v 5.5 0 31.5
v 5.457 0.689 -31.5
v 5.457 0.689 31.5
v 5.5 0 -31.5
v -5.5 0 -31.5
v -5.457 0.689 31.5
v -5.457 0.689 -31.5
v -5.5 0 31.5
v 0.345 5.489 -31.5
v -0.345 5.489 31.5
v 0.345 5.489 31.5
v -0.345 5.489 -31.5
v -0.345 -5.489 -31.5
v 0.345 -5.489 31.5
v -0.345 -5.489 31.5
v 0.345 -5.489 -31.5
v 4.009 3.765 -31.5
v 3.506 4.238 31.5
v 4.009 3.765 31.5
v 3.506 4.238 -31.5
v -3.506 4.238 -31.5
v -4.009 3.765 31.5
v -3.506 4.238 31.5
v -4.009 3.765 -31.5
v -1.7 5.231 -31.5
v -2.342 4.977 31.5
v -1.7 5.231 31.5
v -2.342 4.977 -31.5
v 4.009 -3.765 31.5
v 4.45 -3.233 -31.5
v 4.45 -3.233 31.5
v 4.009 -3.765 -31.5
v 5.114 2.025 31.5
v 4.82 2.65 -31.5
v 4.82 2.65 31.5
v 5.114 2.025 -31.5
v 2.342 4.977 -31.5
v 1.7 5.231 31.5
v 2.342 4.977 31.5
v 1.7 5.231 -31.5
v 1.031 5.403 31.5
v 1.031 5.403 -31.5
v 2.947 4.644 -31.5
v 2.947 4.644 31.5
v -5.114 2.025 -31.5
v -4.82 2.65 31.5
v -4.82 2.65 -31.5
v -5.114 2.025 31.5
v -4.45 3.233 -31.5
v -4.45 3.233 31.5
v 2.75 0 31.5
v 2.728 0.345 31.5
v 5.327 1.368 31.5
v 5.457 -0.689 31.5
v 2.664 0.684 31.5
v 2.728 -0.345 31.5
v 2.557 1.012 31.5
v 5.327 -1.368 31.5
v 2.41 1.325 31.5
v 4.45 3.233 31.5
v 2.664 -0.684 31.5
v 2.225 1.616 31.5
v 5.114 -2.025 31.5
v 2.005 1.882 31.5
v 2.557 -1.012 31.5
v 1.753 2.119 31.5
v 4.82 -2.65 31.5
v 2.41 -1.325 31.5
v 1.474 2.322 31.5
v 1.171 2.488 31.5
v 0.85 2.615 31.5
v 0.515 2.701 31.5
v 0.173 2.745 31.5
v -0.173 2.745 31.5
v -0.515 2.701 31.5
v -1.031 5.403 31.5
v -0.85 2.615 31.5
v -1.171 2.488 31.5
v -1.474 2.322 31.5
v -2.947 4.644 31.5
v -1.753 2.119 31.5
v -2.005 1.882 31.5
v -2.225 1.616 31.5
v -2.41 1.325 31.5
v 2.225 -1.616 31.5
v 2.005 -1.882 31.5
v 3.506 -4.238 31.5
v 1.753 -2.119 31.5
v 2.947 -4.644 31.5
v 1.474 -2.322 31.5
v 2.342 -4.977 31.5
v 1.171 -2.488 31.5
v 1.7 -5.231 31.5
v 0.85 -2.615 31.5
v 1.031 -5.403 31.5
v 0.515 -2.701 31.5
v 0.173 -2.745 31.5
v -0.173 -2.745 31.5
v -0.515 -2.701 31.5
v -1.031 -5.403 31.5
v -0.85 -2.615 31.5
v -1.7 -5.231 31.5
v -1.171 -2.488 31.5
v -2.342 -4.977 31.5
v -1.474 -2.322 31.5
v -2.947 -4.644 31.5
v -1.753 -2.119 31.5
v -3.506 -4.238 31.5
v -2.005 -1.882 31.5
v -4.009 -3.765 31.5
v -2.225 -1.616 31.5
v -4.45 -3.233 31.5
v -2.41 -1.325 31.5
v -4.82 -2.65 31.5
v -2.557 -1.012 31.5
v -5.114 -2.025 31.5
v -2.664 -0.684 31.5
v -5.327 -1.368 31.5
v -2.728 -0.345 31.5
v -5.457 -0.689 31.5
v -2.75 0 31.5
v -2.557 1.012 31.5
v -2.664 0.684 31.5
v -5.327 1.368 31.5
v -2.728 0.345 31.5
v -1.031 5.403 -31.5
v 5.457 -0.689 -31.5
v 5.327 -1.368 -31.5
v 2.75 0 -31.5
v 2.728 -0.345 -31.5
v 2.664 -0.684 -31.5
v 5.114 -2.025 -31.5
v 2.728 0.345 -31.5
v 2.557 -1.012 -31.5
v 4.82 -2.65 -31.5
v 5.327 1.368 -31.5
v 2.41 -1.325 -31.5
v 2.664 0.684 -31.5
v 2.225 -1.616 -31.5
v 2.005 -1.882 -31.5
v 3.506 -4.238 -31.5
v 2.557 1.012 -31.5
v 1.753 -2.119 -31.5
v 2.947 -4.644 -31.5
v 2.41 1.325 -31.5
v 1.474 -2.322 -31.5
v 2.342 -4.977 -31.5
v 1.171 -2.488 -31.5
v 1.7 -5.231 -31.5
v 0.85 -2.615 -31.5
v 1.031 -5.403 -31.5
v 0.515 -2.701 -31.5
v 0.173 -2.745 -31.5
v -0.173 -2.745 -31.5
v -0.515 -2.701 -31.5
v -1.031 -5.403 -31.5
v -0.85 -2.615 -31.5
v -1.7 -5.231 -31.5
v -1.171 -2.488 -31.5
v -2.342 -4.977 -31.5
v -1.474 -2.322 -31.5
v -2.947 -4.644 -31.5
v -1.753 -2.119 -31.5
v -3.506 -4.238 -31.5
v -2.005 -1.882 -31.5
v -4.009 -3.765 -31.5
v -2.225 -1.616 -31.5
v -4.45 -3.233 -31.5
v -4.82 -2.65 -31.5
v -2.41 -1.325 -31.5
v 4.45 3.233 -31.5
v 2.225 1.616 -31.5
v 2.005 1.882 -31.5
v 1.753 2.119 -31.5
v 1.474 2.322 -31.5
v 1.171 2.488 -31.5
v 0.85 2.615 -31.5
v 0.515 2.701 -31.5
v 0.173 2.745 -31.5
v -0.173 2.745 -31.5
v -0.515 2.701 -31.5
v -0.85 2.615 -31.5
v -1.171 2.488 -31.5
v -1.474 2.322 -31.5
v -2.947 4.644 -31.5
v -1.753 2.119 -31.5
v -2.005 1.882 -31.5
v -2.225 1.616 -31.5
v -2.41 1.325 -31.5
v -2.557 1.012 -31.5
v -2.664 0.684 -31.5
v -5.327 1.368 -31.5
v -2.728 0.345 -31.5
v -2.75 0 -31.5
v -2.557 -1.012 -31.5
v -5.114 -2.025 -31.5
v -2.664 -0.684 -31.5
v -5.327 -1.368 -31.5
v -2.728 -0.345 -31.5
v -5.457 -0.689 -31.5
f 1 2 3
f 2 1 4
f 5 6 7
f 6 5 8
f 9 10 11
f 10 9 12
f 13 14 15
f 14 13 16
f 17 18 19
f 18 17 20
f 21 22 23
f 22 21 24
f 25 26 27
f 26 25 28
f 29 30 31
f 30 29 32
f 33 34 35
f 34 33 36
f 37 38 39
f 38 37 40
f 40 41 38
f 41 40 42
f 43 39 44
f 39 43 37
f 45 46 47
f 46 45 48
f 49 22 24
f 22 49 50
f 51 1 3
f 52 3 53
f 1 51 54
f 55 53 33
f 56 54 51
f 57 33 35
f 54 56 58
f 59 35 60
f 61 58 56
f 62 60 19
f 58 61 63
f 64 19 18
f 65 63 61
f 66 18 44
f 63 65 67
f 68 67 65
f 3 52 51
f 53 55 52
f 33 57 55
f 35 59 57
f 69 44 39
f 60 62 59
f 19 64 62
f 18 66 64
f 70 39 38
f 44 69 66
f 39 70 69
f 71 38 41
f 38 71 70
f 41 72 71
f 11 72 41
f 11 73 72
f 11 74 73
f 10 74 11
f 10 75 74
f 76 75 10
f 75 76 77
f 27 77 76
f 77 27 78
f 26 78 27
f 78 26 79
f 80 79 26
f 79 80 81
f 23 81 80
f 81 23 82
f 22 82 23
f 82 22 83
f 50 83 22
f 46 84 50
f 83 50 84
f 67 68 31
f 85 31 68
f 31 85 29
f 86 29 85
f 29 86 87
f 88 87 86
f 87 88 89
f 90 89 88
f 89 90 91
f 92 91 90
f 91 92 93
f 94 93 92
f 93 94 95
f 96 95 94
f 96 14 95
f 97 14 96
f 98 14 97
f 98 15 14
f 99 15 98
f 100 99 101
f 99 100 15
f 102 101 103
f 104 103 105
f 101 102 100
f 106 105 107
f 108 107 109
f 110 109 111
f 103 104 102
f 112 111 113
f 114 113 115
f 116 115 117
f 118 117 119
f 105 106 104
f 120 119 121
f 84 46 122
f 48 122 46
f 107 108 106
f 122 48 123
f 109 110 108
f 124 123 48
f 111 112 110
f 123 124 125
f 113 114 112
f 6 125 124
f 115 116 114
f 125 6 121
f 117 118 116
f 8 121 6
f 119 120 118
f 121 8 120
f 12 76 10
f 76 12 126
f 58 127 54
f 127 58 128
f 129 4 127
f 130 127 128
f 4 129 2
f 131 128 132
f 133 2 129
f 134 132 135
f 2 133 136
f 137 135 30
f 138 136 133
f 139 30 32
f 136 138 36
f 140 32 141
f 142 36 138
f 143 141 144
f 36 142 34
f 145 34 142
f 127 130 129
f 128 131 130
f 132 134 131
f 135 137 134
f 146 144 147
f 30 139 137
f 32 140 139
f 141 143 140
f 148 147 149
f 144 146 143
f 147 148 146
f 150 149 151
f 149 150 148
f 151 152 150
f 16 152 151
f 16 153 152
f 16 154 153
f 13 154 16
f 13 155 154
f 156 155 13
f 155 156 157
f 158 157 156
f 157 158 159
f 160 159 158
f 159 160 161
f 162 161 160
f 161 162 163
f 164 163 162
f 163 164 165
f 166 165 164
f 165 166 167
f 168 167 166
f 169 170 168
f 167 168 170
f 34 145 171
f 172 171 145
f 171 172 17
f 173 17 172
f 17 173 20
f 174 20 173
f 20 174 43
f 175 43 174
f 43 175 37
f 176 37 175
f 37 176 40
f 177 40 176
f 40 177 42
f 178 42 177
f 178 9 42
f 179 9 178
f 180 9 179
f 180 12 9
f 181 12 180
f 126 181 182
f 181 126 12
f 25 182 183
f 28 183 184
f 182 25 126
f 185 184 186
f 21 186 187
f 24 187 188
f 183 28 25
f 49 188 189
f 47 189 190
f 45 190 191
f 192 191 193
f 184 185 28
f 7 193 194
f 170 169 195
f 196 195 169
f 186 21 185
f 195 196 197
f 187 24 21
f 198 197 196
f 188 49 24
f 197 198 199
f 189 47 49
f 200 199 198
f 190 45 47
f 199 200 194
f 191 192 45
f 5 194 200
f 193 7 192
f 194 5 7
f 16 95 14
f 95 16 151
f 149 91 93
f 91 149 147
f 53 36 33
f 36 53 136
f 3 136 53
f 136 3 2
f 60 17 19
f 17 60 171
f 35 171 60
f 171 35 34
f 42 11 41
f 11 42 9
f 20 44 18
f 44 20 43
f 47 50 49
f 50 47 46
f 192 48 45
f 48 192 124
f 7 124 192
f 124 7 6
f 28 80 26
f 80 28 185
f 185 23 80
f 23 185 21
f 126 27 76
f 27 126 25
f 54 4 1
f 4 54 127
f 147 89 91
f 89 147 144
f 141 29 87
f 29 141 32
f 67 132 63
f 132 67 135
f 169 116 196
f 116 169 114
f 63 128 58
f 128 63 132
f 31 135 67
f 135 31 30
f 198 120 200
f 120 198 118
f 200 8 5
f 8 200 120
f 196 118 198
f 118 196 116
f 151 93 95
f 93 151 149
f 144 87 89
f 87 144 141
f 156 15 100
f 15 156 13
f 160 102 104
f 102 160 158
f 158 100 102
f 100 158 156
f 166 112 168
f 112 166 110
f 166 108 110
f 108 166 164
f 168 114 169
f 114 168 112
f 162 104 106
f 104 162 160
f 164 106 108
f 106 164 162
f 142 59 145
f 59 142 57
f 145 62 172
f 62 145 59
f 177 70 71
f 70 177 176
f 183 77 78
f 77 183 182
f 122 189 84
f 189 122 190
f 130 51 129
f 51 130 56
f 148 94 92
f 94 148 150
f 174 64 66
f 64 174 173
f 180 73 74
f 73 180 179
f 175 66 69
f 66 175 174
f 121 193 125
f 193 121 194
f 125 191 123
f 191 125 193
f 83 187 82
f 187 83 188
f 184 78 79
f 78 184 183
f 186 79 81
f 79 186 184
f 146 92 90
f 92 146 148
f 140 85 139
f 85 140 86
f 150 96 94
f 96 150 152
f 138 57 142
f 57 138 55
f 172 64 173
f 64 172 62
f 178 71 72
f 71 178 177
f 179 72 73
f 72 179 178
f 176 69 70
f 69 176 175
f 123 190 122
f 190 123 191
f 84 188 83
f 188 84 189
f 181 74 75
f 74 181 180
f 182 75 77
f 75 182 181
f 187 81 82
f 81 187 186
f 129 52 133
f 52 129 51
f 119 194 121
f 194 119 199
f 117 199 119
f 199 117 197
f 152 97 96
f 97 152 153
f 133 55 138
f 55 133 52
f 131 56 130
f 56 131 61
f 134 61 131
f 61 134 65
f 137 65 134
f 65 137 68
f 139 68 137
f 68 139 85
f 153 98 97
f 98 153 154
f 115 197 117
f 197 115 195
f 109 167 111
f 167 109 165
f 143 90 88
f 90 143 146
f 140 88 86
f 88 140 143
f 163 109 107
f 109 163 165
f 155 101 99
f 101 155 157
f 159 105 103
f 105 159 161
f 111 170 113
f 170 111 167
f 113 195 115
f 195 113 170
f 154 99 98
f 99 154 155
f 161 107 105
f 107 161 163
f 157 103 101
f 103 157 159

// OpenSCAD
$fn = 50;


difference() {
	union() {
		translate(v = [0, 0, -31.5000000000]) {
			cylinder(h = 63, r = 5.5000000000);
		}
	}
	union() {
		translate(v = [0, 0, -100.0000000000]) {
			cylinder(h = 200, r = 2.7500000000);
		}
	}
}
